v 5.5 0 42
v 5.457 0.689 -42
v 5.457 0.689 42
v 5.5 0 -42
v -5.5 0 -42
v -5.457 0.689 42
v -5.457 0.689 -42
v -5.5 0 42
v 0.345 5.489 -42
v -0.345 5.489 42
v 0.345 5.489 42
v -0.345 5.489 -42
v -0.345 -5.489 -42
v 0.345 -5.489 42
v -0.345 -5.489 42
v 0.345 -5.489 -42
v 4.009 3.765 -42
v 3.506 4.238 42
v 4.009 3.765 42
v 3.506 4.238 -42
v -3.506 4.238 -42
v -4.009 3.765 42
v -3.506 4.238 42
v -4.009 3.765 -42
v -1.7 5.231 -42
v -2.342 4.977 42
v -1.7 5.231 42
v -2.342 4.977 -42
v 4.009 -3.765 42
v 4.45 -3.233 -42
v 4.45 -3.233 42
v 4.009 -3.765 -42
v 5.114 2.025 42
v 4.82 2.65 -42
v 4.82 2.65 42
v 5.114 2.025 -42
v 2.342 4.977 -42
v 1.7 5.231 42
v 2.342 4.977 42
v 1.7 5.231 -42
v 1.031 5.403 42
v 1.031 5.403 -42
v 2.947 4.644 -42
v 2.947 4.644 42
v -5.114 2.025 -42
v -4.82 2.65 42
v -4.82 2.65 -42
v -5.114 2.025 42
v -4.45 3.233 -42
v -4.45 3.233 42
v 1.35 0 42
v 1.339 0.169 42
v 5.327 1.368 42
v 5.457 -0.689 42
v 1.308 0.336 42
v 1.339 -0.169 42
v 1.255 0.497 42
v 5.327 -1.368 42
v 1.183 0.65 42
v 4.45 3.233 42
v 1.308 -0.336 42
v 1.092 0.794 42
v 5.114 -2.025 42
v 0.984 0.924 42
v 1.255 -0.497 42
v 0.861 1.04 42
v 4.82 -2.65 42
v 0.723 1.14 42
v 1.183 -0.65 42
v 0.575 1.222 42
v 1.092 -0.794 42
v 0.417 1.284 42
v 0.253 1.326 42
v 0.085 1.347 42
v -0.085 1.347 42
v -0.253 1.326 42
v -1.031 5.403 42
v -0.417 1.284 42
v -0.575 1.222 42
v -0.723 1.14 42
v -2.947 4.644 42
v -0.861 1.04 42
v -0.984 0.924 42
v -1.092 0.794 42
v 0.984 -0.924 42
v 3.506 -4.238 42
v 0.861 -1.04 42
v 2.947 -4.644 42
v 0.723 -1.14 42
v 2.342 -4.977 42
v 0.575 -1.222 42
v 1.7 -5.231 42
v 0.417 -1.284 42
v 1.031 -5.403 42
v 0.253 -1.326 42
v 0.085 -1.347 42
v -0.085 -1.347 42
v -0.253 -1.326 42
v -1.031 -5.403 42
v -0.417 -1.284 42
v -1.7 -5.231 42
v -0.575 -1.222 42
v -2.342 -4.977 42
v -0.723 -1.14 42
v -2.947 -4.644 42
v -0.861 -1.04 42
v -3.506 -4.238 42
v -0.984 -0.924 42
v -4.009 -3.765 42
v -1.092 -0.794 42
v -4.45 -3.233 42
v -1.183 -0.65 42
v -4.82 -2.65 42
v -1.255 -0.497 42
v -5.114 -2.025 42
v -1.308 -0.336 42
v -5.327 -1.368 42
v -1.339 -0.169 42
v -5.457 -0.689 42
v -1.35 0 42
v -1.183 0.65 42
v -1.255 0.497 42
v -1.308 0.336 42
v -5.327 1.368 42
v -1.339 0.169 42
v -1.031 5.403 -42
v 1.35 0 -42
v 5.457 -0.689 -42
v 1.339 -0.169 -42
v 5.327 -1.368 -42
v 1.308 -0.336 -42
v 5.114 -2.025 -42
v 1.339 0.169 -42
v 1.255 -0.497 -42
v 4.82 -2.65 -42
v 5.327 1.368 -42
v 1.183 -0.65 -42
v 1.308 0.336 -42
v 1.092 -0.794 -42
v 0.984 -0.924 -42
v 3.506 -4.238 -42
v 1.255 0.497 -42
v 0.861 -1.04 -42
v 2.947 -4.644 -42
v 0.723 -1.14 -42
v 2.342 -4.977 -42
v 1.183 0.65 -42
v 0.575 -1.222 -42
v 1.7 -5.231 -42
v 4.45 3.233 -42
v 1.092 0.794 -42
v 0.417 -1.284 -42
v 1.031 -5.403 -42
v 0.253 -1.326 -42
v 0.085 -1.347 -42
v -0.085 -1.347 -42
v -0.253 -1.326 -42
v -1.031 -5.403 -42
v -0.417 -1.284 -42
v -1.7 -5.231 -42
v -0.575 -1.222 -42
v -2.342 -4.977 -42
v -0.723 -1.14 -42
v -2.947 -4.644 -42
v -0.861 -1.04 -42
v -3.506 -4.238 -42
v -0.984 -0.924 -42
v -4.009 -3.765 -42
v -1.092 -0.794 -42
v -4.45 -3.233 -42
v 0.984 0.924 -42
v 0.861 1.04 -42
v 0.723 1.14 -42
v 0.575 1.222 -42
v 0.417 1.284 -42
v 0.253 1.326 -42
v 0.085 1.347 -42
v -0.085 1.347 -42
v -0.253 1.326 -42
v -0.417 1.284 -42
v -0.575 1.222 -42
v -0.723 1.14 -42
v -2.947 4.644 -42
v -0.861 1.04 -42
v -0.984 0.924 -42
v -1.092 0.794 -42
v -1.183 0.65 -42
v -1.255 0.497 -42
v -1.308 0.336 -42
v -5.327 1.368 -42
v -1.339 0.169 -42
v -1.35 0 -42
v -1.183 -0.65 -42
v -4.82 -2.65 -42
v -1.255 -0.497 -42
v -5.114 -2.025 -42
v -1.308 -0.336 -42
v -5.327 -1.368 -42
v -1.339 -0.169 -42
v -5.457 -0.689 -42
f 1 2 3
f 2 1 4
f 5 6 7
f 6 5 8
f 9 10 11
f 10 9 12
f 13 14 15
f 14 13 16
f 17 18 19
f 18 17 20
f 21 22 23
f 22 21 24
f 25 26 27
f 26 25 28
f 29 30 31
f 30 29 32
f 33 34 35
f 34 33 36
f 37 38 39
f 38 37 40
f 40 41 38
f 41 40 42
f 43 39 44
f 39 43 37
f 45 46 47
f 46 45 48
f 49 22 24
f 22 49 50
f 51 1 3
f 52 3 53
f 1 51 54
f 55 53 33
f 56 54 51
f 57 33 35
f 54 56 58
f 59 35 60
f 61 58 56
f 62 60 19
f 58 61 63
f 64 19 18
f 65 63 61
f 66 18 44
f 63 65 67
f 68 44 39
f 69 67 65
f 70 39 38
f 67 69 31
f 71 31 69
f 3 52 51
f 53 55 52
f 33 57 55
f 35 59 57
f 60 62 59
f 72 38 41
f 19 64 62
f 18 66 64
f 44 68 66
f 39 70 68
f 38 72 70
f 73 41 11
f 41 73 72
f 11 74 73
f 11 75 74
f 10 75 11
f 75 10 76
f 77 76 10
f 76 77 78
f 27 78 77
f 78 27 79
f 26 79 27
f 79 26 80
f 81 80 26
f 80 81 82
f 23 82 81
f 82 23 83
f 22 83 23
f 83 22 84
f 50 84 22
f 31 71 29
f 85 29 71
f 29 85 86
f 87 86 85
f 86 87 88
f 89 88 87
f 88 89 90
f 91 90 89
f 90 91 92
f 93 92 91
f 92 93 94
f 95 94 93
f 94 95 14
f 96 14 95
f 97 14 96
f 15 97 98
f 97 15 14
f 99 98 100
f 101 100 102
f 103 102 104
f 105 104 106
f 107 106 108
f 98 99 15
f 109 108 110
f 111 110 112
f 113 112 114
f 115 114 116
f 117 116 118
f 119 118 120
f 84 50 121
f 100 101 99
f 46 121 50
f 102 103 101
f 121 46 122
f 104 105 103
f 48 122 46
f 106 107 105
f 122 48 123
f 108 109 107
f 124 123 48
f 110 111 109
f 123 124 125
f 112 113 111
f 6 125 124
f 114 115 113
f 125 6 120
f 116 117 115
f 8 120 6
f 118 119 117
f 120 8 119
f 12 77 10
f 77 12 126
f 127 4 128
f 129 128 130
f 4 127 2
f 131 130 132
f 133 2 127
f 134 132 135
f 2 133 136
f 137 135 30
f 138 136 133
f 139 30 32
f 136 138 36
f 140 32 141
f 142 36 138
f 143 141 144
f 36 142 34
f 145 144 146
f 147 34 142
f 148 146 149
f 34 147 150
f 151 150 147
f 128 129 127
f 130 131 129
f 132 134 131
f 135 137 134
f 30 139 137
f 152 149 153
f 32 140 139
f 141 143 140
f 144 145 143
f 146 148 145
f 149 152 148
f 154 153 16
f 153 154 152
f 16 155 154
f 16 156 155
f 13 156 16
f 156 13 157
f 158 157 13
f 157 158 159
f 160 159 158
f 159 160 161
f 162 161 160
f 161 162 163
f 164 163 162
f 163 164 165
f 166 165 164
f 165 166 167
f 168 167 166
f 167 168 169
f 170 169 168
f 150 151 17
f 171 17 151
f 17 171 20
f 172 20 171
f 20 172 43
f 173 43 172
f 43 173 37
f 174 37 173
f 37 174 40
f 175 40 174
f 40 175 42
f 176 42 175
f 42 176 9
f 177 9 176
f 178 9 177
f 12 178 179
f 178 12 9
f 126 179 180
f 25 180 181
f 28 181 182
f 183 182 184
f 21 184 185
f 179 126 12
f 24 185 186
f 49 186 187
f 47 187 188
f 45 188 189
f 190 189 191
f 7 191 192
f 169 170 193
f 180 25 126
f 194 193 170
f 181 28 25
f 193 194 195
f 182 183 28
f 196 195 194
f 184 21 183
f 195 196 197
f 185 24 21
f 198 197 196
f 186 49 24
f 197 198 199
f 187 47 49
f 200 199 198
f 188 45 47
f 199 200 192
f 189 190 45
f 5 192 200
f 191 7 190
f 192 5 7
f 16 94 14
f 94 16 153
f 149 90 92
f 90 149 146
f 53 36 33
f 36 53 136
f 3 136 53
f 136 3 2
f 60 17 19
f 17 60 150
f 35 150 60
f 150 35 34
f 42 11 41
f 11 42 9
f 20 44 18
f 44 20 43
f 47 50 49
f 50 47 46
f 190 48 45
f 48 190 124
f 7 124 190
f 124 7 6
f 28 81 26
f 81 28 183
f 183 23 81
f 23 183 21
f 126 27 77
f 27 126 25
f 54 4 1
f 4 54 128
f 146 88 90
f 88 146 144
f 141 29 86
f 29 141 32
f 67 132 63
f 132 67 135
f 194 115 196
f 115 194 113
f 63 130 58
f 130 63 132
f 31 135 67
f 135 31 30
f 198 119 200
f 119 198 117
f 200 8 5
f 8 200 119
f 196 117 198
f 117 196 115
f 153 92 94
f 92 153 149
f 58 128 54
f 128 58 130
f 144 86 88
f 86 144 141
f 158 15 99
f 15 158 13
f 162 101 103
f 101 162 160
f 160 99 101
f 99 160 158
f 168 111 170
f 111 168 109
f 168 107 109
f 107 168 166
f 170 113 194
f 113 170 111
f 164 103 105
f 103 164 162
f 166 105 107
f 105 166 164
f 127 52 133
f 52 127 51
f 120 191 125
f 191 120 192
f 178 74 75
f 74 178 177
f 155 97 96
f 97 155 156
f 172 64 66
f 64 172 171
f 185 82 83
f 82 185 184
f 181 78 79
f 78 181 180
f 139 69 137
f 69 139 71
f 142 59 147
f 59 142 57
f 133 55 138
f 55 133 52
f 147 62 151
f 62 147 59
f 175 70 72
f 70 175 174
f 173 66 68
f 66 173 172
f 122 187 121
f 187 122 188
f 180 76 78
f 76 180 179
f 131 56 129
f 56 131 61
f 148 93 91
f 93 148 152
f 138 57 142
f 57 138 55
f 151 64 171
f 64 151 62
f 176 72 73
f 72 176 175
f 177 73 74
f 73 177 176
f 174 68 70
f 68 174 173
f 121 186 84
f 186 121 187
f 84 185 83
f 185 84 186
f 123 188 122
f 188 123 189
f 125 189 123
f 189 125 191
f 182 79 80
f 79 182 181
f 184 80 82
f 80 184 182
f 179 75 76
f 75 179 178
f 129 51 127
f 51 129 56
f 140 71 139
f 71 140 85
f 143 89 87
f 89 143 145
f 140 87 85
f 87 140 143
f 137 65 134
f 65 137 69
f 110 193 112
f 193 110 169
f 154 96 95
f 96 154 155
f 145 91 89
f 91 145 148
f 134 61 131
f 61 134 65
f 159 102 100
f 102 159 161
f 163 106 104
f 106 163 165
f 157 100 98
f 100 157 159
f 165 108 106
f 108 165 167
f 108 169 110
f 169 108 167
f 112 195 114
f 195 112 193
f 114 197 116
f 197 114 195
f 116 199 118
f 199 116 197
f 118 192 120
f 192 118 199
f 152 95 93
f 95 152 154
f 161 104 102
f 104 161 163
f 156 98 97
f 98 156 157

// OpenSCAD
$fn = 50;


difference() {
	union() {
		translate(v = [0, 0, -42.0000000000]) {
			cylinder(h = 84, r = 5.5000000000);
		}
	}
	union() {
		translate(v = [0, 0, -100.0000000000]) {
			cylinder(h = 200, r = 1.3500000000);
		}
	}
}
